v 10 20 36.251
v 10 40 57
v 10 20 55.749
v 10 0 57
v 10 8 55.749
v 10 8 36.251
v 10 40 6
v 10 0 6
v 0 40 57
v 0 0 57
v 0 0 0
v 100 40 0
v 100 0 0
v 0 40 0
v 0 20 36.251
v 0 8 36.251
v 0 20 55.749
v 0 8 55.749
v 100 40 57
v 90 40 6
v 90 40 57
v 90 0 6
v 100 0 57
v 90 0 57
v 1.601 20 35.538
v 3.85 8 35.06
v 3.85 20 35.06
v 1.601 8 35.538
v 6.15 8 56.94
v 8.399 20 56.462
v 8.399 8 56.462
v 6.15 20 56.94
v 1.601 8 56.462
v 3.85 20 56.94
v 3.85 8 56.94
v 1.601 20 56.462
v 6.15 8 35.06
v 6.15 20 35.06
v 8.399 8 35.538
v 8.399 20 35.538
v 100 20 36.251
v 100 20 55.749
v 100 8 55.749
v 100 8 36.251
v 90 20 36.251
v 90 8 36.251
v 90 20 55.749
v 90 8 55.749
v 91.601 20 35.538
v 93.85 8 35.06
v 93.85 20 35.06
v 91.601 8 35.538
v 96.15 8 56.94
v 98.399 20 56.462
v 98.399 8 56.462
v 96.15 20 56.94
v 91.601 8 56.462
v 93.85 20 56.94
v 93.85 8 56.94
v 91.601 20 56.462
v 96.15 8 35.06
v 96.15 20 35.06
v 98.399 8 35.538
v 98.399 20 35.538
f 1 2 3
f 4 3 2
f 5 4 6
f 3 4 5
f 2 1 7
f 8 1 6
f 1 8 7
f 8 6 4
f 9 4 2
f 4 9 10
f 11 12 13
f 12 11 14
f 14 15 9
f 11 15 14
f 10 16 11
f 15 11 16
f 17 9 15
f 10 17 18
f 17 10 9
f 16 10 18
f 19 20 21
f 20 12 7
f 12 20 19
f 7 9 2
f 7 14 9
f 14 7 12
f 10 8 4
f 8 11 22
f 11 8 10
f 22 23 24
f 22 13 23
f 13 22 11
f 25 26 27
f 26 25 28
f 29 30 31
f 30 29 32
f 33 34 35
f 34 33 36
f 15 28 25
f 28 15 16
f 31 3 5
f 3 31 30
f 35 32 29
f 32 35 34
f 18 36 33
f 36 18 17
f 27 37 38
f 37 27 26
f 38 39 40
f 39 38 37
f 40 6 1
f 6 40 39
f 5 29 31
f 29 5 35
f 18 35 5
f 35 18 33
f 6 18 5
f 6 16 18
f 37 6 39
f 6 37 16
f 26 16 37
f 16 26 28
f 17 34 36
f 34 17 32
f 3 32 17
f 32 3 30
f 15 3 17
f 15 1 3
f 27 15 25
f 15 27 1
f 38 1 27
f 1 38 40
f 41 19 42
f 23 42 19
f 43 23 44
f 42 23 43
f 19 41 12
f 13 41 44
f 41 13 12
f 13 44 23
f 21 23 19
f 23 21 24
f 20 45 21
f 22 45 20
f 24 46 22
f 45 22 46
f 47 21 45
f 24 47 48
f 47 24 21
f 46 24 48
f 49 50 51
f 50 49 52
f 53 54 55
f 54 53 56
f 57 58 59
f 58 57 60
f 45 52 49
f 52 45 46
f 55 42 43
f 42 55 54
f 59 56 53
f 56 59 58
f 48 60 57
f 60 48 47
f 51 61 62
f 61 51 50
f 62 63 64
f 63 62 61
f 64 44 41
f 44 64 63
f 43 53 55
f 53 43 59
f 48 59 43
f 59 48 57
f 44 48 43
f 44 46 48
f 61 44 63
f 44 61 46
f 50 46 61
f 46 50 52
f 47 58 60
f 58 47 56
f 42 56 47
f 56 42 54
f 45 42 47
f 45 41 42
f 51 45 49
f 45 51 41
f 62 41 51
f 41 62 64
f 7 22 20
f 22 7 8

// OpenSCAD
// Stand for a flywheel shaft using skateboard bearings
// Parameters can be tweaked for different sizes

bearing_outer_d = 22; // mm (608 bearing)
bearing_thickness = 7; // mm
base_length = 100; // mm
base_width = 40;  // mm
// reduce base thickness to save material while maintaining strength
base_thickness = 6; // mm
post_thickness = bearing_thickness + 3; // mm
post_height = 40; // mm (distance from base to bearing center)

module bearing_post(thk, width, height, base_thk, bore_d) {
    difference() {
        cube([thk, width, height + bore_d/2 + base_thk], center=false);
        translate([thk/2, width/2, height + base_thk])
            rotate([90,0,0])
                cylinder(r=bore_d/2, h=thk+2, $fs=0.5);
    }
}

module stand(base_len, base_w, base_thk, post_thk, post_h, bore_d) {
    // base platform
    cube([base_len, base_w, base_thk], center=false);
    // left post
    translate([0,0,0])
        bearing_post(post_thk, base_w, post_h, base_thk, bore_d);
    // right post
    translate([base_len - post_thk, 0, 0])
        bearing_post(post_thk, base_w, post_h, base_thk, bore_d);
}

stand(base_length, base_width, base_thickness, post_thickness, post_height, bearing_outer_d);
